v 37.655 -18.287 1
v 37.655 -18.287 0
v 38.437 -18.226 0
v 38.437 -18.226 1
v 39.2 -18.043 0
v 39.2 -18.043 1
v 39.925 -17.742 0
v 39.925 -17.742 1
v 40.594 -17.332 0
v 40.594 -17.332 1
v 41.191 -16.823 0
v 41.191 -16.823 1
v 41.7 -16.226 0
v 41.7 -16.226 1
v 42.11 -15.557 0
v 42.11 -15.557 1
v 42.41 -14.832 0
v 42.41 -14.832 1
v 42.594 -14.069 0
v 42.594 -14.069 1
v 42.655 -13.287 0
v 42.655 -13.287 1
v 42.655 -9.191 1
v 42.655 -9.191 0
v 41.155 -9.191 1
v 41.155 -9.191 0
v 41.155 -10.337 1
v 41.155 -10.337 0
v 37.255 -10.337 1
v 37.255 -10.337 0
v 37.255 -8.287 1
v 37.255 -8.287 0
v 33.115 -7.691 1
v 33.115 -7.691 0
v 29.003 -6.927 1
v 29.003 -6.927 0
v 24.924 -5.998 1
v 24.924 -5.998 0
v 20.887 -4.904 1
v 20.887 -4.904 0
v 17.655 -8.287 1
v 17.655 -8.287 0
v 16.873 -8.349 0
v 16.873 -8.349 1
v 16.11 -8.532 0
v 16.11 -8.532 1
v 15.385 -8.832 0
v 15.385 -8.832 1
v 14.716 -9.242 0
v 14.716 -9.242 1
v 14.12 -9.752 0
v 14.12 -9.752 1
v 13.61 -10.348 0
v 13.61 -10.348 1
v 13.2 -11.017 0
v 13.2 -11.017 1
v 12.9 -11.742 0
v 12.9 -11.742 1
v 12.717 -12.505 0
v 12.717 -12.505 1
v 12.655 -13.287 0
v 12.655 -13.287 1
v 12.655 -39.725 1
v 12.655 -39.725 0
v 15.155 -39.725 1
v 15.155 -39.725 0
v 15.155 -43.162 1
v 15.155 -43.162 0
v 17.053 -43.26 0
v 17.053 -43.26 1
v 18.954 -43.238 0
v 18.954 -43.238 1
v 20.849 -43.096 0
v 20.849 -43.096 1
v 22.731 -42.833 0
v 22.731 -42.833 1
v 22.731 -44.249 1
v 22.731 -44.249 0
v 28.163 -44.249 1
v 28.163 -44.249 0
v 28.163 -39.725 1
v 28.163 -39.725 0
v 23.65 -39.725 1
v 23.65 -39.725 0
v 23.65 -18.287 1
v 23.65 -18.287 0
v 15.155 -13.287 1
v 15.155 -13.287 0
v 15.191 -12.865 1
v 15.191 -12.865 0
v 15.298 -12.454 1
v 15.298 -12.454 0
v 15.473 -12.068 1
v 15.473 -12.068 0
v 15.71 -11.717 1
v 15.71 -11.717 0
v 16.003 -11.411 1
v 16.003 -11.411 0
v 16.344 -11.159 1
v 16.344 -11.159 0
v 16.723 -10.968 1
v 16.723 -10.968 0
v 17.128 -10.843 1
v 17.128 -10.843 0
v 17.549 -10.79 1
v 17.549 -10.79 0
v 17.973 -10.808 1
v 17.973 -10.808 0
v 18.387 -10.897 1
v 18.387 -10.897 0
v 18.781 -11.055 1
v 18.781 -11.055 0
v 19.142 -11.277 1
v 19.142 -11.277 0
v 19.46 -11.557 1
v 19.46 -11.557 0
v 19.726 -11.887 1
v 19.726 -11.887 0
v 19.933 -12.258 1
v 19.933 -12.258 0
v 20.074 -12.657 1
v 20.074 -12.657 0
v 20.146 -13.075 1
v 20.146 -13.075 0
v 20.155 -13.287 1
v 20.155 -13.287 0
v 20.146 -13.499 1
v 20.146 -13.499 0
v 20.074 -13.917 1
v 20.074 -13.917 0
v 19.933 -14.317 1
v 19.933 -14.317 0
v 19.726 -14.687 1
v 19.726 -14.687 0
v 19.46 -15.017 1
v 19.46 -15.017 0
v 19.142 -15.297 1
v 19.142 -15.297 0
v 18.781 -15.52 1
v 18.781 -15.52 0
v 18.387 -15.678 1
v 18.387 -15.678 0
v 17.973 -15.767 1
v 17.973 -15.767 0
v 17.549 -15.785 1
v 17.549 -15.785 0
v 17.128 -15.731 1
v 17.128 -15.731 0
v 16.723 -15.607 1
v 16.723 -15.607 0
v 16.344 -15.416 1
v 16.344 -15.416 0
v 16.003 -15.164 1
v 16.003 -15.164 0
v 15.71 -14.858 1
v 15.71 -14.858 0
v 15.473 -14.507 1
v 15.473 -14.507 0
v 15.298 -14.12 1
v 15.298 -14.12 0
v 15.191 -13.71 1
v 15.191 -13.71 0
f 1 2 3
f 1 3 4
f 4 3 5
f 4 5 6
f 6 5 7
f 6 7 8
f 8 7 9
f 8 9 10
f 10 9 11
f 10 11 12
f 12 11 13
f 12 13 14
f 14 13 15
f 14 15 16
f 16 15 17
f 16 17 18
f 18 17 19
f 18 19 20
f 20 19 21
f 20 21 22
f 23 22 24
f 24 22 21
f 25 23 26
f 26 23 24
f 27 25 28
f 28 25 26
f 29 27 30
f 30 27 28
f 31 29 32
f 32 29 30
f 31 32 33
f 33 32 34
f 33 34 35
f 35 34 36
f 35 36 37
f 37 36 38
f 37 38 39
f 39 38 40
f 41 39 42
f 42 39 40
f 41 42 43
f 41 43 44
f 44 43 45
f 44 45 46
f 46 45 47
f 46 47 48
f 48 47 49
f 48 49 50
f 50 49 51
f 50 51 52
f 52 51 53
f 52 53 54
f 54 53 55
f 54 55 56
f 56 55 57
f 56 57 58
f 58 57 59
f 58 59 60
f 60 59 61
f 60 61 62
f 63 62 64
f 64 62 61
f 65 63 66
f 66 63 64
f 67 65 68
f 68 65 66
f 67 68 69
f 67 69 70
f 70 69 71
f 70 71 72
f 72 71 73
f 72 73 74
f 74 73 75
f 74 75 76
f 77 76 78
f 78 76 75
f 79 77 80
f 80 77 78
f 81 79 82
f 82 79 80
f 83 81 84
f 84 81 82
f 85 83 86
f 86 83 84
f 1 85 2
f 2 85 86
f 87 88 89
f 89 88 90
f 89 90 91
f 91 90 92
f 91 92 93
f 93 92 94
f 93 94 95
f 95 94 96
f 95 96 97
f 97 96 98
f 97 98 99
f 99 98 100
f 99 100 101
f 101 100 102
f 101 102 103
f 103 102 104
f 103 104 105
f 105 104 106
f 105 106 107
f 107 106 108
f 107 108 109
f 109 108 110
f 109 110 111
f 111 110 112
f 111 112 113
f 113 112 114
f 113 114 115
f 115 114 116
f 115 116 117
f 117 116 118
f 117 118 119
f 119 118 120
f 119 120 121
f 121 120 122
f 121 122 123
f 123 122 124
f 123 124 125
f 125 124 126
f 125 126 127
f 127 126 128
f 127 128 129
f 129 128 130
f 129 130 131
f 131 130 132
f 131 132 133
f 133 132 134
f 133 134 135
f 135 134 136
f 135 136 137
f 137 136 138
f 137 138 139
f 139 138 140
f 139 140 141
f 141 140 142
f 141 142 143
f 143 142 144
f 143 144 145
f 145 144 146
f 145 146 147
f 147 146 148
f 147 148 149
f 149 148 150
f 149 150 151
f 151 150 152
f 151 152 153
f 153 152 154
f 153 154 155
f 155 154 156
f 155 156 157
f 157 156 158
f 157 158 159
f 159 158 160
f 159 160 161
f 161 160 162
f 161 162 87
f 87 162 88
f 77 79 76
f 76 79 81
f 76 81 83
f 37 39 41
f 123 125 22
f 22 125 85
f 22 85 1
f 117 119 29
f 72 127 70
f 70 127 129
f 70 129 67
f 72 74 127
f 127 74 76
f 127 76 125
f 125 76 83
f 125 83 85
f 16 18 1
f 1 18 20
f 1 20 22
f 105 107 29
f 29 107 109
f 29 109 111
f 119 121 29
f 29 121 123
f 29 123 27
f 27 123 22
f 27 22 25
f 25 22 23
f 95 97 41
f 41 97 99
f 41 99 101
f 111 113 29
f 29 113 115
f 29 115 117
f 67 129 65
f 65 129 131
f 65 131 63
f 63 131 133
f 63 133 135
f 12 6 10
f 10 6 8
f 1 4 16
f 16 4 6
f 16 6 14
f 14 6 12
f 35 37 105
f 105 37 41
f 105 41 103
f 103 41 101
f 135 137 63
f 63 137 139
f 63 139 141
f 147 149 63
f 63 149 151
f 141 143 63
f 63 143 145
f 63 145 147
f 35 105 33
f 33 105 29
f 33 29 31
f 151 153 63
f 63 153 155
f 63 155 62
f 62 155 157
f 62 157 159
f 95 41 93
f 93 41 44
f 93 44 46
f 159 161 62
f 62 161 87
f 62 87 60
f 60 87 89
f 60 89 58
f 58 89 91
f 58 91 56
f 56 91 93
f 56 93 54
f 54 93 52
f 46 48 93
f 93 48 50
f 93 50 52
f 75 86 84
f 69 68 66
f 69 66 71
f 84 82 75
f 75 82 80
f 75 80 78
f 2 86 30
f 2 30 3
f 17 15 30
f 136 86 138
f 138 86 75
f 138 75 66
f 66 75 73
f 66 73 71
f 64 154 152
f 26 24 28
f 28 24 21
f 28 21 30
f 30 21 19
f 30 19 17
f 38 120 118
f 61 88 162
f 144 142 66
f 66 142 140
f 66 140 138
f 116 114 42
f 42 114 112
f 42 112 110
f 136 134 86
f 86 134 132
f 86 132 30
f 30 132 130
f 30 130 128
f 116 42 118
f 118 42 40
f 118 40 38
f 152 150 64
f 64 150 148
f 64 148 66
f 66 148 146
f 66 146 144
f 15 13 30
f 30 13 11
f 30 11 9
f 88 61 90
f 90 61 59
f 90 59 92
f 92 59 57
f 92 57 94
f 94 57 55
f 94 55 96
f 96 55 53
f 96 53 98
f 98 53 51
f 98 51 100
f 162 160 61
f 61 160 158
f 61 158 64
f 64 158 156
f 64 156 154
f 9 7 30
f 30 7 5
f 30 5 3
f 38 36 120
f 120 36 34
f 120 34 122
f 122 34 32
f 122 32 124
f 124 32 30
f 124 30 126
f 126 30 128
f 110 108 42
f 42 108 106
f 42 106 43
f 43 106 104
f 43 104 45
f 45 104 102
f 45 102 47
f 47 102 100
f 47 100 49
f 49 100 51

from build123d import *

# Parameters (mm, degrees)
SKETCH_1_R      = 2.5
EXTRUDE_1_DEPTH = 1


with BuildPart() as part:
    # 스케치1 → 보스-돌출1 (new body)
    with BuildSketch(Plane.XY):
        with BuildLine():
            Line((20.887065526, -4.904042543), (17.65515334, -8.287321674))
            ThreePointArc((17.65515334, -8.287321674), (14.119619434, -9.751787768), (12.65515334, -13.287321674))
            Line((12.65515334, -13.287321674), (12.65515334, -39.724999499))
            Line((12.65515334, -39.724999499), (15.15515334, -39.724999499))
            Line((15.15515334, -39.724999499), (15.15515334, -43.161796007))
            ThreePointArc((15.15515334, -43.161796007), (18.953651475, -43.238083254), (22.731294666, -42.833336733))
            Line((22.731294666, -42.833336733), (22.731294666, -44.249079054))
            Line((22.731294666, -44.249079054), (28.163405743, -44.249079054))
            Line((28.163405743, -44.249079054), (28.163405743, -39.724999499))
            Line((28.163405743, -39.724999499), (25.906714003, -39.724999499))
            Line((25.906714003, -39.724999499), (23.650022264, -39.724999499))
            Line((23.650022264, -39.724999499), (23.650022264, -18.287321674))
            Line((23.650022264, -18.287321674), (37.65515334, -18.287321674))
            ThreePointArc((37.65515334, -18.287321674), (41.190687246, -16.82285558), (42.65515334, -13.287321674))
            Line((42.65515334, -13.287321674), (42.65515334, -9.191405084))
            Line((42.65515334, -9.191405084), (41.15515334, -9.191405084))
            Line((41.15515334, -9.191405084), (41.15515334, -10.336593208))
            Line((41.15515334, -10.336593208), (37.25515334, -10.336593208))
            Line((37.25515334, -10.336593208), (37.25515334, -8.287321674))
            ThreePointArc((37.25515334, -8.287321674), (29.002533556, -6.92744781), (20.887065526, -4.904042543))
        make_face()
        with Locations((17.65515334, -13.287321674)):
            Circle(SKETCH_1_R, mode=Mode.SUBTRACT)
    extrude(amount=EXTRUDE_1_DEPTH)


solid = part.part
